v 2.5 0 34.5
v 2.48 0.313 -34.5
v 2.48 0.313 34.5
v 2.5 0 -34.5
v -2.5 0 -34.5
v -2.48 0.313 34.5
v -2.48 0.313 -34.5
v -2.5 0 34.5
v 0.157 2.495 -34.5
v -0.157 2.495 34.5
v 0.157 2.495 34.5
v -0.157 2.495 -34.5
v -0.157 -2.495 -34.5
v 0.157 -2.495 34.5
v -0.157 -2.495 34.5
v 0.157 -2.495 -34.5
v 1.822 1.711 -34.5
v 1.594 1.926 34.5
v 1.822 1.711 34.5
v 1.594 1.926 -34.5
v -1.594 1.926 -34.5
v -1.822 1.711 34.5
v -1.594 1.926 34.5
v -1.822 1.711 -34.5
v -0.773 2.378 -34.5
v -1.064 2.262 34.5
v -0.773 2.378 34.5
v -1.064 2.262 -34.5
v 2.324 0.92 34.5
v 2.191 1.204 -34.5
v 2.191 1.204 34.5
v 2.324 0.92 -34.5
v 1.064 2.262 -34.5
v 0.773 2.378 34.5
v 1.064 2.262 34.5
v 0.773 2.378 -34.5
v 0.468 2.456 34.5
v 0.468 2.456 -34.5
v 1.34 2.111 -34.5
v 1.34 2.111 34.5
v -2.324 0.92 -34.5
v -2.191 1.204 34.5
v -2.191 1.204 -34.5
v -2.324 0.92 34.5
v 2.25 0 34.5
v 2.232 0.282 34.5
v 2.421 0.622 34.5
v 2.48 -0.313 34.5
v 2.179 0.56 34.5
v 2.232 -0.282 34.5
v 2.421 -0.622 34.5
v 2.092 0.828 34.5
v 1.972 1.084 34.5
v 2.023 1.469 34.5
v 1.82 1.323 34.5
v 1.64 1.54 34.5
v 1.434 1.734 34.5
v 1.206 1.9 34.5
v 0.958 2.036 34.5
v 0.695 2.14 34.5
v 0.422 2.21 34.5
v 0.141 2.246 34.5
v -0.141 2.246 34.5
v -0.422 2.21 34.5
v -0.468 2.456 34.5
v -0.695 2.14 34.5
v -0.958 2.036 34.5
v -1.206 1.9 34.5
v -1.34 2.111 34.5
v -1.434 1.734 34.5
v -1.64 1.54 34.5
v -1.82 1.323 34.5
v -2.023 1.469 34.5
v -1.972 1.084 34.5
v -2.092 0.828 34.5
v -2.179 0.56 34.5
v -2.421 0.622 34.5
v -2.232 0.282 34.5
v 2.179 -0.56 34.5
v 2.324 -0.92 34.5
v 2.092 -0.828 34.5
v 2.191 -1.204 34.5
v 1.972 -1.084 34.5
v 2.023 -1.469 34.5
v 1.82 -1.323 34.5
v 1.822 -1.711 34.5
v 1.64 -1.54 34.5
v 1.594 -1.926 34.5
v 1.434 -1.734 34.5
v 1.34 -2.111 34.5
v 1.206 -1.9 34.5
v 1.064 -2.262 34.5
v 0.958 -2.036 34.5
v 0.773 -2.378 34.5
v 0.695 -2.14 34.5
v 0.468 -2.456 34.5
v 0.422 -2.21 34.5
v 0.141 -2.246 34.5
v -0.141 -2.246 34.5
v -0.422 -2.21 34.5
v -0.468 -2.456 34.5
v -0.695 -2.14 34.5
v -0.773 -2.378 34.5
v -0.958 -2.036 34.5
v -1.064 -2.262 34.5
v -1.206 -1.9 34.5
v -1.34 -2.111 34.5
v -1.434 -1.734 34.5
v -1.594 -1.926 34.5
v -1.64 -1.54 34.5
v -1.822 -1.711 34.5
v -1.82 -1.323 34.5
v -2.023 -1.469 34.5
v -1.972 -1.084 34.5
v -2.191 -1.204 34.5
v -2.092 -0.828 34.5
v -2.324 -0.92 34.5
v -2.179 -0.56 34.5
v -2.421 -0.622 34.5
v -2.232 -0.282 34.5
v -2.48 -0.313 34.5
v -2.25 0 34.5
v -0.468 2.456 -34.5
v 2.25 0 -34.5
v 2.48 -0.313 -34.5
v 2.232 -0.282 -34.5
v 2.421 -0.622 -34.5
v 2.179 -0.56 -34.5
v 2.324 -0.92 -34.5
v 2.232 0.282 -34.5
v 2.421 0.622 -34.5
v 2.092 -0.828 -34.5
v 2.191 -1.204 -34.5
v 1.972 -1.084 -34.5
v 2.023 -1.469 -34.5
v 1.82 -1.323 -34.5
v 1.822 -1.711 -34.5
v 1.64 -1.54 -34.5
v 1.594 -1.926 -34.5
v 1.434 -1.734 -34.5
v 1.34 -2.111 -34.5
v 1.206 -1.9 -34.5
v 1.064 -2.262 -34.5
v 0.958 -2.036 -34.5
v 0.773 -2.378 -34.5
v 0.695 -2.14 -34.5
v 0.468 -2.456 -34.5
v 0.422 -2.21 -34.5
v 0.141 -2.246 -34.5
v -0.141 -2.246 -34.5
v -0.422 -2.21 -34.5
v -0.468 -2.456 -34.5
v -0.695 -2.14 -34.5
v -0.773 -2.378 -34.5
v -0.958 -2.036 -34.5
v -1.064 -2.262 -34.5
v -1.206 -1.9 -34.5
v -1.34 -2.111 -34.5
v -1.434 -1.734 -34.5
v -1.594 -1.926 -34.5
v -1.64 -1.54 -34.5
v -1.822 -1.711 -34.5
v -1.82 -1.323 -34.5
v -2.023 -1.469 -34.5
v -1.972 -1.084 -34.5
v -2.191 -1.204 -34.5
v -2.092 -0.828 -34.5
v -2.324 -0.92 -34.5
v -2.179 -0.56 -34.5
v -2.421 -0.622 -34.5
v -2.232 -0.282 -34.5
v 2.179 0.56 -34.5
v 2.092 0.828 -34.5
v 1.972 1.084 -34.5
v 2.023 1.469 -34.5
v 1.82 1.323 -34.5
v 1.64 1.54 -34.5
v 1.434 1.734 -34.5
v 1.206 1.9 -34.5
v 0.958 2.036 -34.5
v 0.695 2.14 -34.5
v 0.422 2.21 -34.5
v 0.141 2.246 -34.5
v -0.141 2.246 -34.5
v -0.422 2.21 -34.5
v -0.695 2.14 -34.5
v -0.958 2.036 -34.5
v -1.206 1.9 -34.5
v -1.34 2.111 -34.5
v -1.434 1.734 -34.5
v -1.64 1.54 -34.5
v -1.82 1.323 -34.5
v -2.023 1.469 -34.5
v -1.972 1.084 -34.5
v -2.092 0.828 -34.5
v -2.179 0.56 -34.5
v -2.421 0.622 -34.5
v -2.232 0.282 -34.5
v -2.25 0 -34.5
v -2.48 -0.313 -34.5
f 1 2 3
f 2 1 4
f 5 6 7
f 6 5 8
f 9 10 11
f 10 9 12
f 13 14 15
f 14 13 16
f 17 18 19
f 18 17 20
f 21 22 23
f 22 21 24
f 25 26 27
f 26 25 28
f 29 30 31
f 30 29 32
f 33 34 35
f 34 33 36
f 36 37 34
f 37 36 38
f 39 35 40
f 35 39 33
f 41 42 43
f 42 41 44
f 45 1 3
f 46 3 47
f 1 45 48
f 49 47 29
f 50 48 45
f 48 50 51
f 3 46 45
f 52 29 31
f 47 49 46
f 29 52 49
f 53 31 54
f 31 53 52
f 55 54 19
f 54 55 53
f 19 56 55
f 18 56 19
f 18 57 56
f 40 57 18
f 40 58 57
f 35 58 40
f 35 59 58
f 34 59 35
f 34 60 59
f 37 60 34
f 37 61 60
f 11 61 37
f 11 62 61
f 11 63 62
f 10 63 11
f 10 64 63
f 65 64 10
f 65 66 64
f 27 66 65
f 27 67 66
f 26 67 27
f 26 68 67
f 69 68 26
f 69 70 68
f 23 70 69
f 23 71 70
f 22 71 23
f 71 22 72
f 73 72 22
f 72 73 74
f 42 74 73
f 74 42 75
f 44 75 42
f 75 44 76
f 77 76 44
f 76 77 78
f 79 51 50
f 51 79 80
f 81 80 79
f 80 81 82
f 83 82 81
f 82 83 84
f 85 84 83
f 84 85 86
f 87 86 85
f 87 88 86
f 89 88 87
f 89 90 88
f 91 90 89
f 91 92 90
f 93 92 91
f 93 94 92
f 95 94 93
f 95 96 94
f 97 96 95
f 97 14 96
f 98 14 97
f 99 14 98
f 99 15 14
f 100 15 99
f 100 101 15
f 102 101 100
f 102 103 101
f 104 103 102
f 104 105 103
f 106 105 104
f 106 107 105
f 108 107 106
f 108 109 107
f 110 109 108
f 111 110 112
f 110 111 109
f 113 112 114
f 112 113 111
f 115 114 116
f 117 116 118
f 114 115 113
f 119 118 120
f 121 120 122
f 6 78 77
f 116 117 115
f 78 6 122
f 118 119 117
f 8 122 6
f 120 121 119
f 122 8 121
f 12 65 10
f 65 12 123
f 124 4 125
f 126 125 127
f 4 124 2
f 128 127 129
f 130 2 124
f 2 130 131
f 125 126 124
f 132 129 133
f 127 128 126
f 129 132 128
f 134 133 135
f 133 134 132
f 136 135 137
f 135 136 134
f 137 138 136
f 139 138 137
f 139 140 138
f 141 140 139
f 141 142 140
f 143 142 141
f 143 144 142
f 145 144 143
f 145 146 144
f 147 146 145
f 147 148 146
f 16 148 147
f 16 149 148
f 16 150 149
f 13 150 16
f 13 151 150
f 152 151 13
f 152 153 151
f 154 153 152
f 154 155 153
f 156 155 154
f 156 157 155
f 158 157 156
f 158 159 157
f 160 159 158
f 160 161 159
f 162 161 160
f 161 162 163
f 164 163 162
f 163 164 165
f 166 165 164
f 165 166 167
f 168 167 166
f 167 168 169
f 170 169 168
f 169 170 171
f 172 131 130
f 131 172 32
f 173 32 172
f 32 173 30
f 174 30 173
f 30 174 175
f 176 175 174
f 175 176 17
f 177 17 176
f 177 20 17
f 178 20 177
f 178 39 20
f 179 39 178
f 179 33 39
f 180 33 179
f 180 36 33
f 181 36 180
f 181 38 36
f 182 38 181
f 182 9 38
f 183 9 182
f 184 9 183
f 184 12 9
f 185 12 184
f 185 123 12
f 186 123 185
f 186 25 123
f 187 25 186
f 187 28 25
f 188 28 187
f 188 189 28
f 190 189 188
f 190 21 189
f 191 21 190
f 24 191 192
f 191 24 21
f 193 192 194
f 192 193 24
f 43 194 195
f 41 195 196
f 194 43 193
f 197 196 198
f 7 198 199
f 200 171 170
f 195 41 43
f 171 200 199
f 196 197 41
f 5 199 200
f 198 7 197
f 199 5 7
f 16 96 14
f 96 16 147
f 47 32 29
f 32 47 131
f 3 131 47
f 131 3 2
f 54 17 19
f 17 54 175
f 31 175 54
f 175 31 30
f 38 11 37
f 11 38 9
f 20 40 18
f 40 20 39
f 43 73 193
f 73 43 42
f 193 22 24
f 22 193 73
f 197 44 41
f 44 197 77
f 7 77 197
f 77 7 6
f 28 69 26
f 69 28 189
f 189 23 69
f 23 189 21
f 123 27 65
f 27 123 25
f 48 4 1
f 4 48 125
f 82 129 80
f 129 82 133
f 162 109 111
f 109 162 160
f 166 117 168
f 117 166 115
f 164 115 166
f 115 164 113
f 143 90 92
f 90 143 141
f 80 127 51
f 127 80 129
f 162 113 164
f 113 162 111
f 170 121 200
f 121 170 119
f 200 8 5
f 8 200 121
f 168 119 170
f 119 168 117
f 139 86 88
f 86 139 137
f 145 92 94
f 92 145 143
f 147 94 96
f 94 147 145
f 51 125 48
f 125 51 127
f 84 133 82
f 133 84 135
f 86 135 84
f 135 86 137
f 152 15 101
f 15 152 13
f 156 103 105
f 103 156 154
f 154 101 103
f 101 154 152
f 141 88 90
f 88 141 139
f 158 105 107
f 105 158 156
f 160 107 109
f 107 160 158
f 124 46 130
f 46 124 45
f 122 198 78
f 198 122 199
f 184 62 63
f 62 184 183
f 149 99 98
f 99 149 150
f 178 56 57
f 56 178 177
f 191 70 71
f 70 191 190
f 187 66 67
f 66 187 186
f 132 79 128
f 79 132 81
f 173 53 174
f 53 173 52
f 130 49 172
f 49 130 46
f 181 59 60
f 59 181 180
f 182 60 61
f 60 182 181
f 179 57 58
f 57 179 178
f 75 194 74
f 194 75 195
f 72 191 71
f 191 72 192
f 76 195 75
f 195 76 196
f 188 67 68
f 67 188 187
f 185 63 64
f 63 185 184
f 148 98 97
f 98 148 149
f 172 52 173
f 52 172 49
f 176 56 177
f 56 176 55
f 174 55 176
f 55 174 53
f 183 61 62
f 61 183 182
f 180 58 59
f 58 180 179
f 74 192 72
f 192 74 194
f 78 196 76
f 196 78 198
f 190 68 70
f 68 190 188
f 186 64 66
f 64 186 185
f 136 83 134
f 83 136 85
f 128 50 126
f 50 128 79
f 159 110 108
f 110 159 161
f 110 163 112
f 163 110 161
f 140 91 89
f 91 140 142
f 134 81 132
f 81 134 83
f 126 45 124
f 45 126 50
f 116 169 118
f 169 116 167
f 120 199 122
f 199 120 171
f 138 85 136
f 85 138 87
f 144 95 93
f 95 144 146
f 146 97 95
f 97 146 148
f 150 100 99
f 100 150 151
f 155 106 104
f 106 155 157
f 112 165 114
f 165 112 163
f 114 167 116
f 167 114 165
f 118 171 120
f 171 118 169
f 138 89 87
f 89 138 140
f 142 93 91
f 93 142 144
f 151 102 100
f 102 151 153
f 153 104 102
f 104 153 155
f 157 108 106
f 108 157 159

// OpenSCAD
$fn = 50;


difference() {
	union() {
		translate(v = [0, 0, -34.5000000000]) {
			cylinder(h = 69, r = 2.5000000000);
		}
	}
	union() {
		translate(v = [0, 0, -100.0000000000]) {
			cylinder(h = 200, r = 2.2500000000);
		}
	}
}
